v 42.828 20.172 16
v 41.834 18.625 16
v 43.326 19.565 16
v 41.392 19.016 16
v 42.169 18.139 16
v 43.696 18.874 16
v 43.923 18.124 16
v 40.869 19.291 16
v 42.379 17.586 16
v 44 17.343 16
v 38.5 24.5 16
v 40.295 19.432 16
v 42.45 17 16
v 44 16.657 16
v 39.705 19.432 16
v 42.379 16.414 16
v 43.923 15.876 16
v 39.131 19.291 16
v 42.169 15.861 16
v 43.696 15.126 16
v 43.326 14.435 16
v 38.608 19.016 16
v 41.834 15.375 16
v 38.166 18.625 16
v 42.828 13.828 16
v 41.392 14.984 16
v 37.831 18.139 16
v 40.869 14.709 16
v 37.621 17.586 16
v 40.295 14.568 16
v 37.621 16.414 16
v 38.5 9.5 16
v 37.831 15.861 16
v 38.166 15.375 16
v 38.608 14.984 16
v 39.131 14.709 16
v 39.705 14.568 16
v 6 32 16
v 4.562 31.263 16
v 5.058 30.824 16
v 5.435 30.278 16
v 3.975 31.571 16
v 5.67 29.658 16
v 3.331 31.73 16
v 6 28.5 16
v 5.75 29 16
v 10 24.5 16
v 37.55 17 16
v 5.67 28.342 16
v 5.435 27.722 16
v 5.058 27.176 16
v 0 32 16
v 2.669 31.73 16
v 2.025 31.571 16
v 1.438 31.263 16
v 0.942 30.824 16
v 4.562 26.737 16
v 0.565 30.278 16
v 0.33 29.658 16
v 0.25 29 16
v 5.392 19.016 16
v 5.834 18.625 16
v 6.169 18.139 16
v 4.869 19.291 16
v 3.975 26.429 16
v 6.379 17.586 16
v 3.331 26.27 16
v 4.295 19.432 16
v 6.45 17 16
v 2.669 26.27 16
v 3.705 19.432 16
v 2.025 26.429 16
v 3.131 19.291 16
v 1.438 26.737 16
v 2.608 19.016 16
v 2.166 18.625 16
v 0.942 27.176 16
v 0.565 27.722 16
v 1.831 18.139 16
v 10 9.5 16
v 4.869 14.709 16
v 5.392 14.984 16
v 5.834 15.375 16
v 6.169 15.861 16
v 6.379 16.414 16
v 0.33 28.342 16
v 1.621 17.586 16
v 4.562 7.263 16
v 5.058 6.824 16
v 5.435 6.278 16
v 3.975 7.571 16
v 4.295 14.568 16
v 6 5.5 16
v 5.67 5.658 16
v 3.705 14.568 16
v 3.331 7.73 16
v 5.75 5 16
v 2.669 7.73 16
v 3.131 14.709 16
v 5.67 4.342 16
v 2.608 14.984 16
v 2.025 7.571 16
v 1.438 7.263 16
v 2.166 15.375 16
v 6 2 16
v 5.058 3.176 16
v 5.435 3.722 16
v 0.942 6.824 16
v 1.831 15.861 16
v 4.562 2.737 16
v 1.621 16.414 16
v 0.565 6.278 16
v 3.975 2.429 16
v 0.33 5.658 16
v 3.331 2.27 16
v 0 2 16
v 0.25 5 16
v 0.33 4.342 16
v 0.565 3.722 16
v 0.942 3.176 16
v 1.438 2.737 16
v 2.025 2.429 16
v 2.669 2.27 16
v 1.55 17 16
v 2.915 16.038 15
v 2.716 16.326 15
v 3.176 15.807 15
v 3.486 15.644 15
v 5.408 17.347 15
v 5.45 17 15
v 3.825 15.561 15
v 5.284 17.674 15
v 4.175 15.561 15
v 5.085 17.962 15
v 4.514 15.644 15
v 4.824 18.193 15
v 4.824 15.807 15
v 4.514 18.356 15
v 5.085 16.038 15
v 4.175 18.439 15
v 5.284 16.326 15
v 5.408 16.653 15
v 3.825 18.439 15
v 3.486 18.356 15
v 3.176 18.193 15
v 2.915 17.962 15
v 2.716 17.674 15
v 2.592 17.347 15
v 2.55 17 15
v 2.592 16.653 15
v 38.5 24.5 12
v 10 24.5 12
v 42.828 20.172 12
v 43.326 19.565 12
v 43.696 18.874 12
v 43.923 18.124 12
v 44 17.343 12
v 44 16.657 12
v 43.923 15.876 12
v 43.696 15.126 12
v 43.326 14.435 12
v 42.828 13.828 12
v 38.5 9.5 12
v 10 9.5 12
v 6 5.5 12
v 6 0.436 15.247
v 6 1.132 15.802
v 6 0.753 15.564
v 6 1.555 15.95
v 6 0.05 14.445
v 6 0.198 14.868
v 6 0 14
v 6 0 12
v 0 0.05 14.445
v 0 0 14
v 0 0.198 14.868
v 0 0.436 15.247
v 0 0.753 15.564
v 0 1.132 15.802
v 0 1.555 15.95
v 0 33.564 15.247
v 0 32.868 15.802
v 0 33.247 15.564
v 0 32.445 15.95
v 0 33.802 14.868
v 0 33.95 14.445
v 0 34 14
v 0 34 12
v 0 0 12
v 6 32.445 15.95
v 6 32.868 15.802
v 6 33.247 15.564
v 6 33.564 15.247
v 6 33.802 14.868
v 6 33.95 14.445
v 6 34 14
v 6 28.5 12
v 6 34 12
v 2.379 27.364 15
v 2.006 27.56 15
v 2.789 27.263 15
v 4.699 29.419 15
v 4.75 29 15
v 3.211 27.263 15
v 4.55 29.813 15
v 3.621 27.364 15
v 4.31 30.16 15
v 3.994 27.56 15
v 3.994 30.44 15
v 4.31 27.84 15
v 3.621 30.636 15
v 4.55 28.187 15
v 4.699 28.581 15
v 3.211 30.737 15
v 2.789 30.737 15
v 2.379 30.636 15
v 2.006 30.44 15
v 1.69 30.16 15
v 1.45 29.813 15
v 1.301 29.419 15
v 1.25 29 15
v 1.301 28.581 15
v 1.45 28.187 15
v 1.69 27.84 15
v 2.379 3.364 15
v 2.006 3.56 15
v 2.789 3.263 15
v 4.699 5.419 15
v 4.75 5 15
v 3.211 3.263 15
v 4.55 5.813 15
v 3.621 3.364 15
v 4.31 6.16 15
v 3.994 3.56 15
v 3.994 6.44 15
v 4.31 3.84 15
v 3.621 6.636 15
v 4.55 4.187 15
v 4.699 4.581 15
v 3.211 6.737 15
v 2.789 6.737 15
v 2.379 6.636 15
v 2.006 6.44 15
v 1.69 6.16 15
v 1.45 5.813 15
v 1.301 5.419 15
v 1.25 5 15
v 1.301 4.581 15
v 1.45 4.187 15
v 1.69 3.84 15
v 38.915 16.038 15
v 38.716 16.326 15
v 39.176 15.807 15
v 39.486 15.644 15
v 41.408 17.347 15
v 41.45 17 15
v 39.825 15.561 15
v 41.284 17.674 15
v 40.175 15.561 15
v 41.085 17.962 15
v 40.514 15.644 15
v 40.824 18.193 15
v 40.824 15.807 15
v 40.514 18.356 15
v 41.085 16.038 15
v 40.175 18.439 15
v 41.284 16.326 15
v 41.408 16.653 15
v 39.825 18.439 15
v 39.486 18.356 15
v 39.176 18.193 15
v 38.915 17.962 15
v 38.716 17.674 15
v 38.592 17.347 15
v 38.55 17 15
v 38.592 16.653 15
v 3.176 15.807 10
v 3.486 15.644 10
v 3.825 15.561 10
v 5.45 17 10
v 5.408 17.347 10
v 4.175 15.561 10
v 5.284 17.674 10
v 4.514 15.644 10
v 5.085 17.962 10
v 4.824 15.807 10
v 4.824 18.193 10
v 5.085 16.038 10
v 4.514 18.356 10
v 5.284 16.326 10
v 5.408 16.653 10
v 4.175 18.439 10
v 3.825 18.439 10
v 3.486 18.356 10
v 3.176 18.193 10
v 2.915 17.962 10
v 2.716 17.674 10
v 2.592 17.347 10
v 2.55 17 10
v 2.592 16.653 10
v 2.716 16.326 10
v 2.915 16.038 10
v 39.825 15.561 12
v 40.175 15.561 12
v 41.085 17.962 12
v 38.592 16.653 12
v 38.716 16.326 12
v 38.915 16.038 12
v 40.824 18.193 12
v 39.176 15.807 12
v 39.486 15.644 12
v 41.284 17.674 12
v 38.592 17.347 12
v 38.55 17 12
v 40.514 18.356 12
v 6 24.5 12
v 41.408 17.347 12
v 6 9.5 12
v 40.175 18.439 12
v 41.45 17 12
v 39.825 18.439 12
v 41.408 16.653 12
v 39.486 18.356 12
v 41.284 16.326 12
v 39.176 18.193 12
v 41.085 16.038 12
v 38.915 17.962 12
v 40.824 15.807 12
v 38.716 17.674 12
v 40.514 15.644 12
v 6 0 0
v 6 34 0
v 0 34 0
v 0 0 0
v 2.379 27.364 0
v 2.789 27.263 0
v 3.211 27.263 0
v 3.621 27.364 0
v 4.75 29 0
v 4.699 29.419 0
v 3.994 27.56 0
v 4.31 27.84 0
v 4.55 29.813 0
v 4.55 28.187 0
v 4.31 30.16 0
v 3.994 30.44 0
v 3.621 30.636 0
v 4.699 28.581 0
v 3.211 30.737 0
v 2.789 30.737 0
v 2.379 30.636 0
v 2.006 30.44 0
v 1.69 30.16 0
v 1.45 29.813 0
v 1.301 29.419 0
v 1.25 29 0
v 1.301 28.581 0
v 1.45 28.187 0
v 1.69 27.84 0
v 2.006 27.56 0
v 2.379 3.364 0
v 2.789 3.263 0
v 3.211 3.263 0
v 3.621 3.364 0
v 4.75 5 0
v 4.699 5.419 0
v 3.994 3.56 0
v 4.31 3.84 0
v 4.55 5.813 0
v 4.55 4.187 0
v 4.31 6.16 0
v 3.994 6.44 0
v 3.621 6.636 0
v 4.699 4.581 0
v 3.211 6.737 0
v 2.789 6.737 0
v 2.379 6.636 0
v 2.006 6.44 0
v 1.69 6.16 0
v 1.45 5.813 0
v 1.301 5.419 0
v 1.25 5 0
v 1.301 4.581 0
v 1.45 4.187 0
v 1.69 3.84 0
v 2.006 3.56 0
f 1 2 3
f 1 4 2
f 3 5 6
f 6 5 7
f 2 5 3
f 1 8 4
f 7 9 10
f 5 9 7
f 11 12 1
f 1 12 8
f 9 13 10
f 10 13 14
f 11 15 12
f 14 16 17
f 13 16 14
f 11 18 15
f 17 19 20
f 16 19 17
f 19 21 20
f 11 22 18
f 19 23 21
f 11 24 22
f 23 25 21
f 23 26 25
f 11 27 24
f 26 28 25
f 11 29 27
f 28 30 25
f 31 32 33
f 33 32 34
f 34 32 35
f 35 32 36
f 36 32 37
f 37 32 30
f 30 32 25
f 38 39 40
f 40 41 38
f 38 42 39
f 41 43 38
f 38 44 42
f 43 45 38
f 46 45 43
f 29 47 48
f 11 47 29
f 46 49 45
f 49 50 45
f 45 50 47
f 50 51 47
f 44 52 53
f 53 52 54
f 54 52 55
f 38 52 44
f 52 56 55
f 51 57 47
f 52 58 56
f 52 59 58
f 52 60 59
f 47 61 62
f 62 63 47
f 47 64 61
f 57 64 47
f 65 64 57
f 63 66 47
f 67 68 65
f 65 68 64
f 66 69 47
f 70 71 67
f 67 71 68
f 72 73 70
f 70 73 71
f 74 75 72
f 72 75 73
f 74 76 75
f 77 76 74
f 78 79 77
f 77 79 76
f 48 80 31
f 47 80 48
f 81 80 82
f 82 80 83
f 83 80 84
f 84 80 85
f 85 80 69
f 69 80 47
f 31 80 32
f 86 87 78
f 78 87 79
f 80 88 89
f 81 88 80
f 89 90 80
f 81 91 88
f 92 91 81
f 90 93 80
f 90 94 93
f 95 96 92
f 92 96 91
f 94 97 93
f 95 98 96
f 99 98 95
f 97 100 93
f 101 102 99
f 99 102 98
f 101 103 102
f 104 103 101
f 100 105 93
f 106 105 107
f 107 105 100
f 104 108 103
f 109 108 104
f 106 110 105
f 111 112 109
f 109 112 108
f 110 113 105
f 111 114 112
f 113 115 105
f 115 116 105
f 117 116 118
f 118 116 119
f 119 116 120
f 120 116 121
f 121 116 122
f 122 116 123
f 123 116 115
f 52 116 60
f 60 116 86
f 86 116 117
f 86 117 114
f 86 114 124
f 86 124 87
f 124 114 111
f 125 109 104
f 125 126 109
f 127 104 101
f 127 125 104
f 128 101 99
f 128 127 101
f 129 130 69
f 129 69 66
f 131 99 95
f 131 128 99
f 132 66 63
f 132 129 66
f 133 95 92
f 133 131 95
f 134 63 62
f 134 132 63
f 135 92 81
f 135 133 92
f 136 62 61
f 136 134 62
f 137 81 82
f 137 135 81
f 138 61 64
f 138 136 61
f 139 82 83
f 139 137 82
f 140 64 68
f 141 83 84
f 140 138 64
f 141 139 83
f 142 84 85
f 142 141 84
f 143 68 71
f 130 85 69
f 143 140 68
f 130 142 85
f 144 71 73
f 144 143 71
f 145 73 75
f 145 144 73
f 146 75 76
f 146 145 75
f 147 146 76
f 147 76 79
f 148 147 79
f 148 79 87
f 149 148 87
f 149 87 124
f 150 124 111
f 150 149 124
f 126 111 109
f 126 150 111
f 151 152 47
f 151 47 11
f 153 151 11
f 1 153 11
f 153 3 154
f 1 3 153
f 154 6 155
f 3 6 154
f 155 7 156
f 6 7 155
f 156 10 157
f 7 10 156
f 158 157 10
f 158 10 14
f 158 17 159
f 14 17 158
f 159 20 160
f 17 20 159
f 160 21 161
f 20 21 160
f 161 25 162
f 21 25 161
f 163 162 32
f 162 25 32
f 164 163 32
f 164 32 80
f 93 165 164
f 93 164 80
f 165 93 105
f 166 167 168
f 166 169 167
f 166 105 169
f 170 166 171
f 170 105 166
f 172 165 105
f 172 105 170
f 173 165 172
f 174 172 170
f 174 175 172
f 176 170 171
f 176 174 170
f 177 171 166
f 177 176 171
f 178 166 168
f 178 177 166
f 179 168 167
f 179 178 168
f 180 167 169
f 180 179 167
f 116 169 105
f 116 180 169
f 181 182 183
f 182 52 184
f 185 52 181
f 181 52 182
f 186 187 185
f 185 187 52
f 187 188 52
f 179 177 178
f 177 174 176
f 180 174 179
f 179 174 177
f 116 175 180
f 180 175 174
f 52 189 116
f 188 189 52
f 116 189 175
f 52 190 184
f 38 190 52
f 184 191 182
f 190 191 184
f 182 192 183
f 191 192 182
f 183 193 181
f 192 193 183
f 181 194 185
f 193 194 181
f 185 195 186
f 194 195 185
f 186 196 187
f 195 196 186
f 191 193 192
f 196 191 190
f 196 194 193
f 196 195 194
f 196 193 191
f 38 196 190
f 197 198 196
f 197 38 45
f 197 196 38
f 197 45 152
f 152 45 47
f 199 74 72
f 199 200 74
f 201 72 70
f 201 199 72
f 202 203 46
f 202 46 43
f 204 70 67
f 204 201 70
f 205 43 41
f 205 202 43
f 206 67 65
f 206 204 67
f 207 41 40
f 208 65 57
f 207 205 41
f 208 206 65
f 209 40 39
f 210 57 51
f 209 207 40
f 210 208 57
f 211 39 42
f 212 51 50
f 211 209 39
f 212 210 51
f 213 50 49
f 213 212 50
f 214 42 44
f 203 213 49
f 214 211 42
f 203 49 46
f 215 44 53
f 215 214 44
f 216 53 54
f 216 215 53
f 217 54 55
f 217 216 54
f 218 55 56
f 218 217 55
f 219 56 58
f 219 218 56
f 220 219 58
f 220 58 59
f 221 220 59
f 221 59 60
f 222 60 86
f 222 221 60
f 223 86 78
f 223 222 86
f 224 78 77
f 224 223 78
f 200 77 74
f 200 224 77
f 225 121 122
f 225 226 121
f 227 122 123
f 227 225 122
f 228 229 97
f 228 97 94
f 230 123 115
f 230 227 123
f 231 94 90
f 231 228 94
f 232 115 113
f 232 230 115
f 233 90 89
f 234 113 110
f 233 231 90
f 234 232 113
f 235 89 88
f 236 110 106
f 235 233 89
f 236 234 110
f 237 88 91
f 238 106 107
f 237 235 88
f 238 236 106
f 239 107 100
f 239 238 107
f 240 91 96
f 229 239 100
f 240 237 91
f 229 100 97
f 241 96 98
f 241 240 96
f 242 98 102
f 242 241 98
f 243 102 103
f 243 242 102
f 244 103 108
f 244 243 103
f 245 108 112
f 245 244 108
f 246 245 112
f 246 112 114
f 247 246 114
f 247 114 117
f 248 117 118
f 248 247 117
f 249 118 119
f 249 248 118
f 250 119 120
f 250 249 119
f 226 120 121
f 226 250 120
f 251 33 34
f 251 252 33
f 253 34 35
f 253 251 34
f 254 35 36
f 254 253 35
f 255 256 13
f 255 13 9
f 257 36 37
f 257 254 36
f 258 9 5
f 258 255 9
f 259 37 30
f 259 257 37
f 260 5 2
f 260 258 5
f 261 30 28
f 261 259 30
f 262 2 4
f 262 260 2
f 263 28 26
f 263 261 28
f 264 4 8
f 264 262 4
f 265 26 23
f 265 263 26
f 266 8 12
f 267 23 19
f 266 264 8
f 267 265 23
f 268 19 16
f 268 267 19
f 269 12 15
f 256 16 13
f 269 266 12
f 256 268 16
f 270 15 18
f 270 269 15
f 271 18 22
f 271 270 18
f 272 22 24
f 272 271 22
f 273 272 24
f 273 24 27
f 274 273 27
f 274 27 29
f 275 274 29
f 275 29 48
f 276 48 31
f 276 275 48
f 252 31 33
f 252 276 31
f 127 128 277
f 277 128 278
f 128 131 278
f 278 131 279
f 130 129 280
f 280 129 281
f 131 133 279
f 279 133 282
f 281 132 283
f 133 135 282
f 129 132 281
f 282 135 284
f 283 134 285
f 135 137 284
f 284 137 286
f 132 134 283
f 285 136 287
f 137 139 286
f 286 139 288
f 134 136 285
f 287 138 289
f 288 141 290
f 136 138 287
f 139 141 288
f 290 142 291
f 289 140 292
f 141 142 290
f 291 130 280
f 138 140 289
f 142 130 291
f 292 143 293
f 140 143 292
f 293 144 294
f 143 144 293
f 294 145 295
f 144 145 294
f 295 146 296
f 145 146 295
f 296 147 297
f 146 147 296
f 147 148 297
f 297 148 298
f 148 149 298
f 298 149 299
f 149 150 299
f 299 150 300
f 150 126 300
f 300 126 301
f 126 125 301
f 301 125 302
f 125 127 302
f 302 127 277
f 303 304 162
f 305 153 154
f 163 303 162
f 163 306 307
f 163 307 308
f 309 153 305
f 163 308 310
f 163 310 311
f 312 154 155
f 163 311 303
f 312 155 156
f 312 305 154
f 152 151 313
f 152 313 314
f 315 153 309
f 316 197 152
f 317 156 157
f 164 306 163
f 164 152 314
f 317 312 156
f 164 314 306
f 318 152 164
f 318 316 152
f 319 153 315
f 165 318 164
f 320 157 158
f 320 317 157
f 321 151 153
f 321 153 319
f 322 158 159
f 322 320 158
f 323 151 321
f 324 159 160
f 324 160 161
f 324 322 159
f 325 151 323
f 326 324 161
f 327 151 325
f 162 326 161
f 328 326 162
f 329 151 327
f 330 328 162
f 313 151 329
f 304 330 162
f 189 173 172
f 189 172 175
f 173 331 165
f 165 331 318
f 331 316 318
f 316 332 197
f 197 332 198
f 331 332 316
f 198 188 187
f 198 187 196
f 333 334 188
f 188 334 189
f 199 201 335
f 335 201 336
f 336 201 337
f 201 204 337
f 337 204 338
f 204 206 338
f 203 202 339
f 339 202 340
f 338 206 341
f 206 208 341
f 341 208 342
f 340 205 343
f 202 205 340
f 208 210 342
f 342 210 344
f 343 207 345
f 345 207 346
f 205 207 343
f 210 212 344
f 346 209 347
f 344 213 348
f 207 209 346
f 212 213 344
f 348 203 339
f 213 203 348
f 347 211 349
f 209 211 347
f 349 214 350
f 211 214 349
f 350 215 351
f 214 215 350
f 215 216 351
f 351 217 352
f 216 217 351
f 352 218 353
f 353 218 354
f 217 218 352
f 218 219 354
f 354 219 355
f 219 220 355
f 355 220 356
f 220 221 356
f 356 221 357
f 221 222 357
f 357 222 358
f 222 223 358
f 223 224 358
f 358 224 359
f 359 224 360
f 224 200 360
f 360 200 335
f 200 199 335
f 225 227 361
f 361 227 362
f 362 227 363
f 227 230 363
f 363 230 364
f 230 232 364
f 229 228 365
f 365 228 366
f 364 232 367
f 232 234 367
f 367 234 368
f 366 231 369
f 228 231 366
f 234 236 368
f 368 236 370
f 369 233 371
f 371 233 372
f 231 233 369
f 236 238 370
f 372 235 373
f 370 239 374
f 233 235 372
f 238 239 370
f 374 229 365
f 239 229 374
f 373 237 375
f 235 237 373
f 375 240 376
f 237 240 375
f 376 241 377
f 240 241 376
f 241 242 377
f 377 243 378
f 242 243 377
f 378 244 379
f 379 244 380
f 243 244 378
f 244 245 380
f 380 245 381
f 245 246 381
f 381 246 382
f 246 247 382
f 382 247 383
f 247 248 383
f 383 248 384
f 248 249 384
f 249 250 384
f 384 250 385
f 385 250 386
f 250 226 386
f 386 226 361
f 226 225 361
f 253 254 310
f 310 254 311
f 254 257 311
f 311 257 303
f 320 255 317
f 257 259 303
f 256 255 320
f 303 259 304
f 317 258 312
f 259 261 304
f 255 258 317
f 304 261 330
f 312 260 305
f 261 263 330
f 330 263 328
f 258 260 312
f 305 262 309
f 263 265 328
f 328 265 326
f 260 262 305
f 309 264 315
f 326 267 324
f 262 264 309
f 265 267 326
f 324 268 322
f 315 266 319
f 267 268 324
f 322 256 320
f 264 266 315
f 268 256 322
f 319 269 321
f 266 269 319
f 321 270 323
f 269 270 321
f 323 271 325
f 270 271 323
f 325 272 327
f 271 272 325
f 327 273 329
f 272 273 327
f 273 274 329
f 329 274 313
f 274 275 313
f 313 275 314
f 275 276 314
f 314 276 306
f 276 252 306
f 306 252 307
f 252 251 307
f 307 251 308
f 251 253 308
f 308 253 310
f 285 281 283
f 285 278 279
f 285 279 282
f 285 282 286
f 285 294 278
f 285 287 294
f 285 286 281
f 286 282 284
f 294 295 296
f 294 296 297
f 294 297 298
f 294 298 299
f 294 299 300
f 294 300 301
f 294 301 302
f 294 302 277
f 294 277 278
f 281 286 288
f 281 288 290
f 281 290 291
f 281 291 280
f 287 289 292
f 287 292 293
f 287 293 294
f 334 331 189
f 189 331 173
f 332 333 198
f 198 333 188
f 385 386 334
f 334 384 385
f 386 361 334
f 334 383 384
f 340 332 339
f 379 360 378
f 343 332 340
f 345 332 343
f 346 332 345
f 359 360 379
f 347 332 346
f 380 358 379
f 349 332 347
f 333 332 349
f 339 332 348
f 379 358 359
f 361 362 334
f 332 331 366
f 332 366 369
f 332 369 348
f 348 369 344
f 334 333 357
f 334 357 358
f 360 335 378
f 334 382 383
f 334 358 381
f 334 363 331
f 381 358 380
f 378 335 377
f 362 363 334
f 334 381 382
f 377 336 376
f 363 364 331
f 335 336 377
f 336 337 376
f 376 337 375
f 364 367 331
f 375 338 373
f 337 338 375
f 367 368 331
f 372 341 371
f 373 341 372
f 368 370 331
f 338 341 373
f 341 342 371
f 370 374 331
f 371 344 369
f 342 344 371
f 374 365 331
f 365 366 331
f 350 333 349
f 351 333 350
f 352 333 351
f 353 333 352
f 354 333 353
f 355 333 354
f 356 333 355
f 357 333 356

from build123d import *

# Parameters (mm, degrees)
SKETCH_W        = 6
SKETCH_H        = 34
PAD_DEPTH       = 12
PAD001_DEPTH    = 4
SKETCH003_R     = 1.75
POCKET_DEPTH    = 16.001
FILLET_R        = 2
CHAMFER_SIZE    = 1
SKETCH004_R     = 1.45
POCKET001_DEPTH = 6
CHAMFER001_SIZE = 5.5
FILLET001_R     = 4
CHAMFER002_SIZE = 4
CHAMFER003_SIZE = 1


with BuildPart() as part:
    # Sketch → Pad (new body)
    with BuildSketch(Plane.XY):
        with Locations((3, 17)):
            Rectangle(SKETCH_W, SKETCH_H)
    extrude(amount=PAD_DEPTH)

    # Sketch002 → Pad001 (join)
    with BuildSketch(Plane.XY.offset(12)):
        Polygon((6, 24.5), (44, 24.5), (44, 9.5), (6, 9.5), (6, 0), (0, 0), (0, 34), (6, 34), align=None)
    extrude(amount=PAD001_DEPTH)

    # Sketch003 (on Face11 of Pad001) → Pocket (cut, through all)
    with BuildSketch(Plane.XY.offset(16)):
        with Locations((3, 29)):
            Circle(SKETCH003_R)
        with Locations((3, 5)):
            Circle(SKETCH003_R)
    extrude(amount=-POCKET_DEPTH, mode=Mode.SUBTRACT)

    # Fillet
    fillet_edges = [part.edges().sort_by_distance(p)[0] for p in [
        (3, 0, 16),
        (3, 34, 16),
    ]]
    fillet(fillet_edges, radius=FILLET_R)

    # Chamfer
    chamfer_edges = [part.edges().sort_by_distance(p)[0] for p in [
        (1.25, 29, 16),
        (1.25, 5, 16),
    ]]
    chamfer(chamfer_edges, length=CHAMFER_SIZE)

    # Sketch004 (on Face1 of Chamfer) → Pocket001 (cut)
    with BuildSketch(Plane.XY.offset(16)):
        with Locations((4, 17)):
            Circle(SKETCH004_R)
        with Locations((40, 17)):
            Circle(SKETCH004_R)
    extrude(amount=-POCKET001_DEPTH, mode=Mode.SUBTRACT)

    # Chamfer001
    chamfer001_edges = [part.edges().sort_by_distance(p)[0] for p in [
        (44, 9.5, 14),
        (44, 24.5, 14),
    ]]
    chamfer(chamfer001_edges, length=CHAMFER001_SIZE)

    # Fillet001
    fillet001_edges = [part.edges().sort_by_distance(p)[0] for p in [
        (44, 15, 14),
        (44, 19, 14),
    ]]
    fillet(fillet001_edges, radius=FILLET001_R)

    # Chamfer002
    chamfer002_edges = [part.edges().sort_by_distance(p)[0] for p in [
        (6, 9.5, 14),
        (6, 24.5, 14),
    ]]
    chamfer(chamfer002_edges, length=CHAMFER002_SIZE)

    # Chamfer003
    chamfer003_edges = [part.edges().sort_by_distance(p)[0] for p in [
        (2.55, 17, 16),
        (38.55, 17, 16),
    ]]
    chamfer(chamfer003_edges, length=CHAMFER003_SIZE)


solid = part.part
